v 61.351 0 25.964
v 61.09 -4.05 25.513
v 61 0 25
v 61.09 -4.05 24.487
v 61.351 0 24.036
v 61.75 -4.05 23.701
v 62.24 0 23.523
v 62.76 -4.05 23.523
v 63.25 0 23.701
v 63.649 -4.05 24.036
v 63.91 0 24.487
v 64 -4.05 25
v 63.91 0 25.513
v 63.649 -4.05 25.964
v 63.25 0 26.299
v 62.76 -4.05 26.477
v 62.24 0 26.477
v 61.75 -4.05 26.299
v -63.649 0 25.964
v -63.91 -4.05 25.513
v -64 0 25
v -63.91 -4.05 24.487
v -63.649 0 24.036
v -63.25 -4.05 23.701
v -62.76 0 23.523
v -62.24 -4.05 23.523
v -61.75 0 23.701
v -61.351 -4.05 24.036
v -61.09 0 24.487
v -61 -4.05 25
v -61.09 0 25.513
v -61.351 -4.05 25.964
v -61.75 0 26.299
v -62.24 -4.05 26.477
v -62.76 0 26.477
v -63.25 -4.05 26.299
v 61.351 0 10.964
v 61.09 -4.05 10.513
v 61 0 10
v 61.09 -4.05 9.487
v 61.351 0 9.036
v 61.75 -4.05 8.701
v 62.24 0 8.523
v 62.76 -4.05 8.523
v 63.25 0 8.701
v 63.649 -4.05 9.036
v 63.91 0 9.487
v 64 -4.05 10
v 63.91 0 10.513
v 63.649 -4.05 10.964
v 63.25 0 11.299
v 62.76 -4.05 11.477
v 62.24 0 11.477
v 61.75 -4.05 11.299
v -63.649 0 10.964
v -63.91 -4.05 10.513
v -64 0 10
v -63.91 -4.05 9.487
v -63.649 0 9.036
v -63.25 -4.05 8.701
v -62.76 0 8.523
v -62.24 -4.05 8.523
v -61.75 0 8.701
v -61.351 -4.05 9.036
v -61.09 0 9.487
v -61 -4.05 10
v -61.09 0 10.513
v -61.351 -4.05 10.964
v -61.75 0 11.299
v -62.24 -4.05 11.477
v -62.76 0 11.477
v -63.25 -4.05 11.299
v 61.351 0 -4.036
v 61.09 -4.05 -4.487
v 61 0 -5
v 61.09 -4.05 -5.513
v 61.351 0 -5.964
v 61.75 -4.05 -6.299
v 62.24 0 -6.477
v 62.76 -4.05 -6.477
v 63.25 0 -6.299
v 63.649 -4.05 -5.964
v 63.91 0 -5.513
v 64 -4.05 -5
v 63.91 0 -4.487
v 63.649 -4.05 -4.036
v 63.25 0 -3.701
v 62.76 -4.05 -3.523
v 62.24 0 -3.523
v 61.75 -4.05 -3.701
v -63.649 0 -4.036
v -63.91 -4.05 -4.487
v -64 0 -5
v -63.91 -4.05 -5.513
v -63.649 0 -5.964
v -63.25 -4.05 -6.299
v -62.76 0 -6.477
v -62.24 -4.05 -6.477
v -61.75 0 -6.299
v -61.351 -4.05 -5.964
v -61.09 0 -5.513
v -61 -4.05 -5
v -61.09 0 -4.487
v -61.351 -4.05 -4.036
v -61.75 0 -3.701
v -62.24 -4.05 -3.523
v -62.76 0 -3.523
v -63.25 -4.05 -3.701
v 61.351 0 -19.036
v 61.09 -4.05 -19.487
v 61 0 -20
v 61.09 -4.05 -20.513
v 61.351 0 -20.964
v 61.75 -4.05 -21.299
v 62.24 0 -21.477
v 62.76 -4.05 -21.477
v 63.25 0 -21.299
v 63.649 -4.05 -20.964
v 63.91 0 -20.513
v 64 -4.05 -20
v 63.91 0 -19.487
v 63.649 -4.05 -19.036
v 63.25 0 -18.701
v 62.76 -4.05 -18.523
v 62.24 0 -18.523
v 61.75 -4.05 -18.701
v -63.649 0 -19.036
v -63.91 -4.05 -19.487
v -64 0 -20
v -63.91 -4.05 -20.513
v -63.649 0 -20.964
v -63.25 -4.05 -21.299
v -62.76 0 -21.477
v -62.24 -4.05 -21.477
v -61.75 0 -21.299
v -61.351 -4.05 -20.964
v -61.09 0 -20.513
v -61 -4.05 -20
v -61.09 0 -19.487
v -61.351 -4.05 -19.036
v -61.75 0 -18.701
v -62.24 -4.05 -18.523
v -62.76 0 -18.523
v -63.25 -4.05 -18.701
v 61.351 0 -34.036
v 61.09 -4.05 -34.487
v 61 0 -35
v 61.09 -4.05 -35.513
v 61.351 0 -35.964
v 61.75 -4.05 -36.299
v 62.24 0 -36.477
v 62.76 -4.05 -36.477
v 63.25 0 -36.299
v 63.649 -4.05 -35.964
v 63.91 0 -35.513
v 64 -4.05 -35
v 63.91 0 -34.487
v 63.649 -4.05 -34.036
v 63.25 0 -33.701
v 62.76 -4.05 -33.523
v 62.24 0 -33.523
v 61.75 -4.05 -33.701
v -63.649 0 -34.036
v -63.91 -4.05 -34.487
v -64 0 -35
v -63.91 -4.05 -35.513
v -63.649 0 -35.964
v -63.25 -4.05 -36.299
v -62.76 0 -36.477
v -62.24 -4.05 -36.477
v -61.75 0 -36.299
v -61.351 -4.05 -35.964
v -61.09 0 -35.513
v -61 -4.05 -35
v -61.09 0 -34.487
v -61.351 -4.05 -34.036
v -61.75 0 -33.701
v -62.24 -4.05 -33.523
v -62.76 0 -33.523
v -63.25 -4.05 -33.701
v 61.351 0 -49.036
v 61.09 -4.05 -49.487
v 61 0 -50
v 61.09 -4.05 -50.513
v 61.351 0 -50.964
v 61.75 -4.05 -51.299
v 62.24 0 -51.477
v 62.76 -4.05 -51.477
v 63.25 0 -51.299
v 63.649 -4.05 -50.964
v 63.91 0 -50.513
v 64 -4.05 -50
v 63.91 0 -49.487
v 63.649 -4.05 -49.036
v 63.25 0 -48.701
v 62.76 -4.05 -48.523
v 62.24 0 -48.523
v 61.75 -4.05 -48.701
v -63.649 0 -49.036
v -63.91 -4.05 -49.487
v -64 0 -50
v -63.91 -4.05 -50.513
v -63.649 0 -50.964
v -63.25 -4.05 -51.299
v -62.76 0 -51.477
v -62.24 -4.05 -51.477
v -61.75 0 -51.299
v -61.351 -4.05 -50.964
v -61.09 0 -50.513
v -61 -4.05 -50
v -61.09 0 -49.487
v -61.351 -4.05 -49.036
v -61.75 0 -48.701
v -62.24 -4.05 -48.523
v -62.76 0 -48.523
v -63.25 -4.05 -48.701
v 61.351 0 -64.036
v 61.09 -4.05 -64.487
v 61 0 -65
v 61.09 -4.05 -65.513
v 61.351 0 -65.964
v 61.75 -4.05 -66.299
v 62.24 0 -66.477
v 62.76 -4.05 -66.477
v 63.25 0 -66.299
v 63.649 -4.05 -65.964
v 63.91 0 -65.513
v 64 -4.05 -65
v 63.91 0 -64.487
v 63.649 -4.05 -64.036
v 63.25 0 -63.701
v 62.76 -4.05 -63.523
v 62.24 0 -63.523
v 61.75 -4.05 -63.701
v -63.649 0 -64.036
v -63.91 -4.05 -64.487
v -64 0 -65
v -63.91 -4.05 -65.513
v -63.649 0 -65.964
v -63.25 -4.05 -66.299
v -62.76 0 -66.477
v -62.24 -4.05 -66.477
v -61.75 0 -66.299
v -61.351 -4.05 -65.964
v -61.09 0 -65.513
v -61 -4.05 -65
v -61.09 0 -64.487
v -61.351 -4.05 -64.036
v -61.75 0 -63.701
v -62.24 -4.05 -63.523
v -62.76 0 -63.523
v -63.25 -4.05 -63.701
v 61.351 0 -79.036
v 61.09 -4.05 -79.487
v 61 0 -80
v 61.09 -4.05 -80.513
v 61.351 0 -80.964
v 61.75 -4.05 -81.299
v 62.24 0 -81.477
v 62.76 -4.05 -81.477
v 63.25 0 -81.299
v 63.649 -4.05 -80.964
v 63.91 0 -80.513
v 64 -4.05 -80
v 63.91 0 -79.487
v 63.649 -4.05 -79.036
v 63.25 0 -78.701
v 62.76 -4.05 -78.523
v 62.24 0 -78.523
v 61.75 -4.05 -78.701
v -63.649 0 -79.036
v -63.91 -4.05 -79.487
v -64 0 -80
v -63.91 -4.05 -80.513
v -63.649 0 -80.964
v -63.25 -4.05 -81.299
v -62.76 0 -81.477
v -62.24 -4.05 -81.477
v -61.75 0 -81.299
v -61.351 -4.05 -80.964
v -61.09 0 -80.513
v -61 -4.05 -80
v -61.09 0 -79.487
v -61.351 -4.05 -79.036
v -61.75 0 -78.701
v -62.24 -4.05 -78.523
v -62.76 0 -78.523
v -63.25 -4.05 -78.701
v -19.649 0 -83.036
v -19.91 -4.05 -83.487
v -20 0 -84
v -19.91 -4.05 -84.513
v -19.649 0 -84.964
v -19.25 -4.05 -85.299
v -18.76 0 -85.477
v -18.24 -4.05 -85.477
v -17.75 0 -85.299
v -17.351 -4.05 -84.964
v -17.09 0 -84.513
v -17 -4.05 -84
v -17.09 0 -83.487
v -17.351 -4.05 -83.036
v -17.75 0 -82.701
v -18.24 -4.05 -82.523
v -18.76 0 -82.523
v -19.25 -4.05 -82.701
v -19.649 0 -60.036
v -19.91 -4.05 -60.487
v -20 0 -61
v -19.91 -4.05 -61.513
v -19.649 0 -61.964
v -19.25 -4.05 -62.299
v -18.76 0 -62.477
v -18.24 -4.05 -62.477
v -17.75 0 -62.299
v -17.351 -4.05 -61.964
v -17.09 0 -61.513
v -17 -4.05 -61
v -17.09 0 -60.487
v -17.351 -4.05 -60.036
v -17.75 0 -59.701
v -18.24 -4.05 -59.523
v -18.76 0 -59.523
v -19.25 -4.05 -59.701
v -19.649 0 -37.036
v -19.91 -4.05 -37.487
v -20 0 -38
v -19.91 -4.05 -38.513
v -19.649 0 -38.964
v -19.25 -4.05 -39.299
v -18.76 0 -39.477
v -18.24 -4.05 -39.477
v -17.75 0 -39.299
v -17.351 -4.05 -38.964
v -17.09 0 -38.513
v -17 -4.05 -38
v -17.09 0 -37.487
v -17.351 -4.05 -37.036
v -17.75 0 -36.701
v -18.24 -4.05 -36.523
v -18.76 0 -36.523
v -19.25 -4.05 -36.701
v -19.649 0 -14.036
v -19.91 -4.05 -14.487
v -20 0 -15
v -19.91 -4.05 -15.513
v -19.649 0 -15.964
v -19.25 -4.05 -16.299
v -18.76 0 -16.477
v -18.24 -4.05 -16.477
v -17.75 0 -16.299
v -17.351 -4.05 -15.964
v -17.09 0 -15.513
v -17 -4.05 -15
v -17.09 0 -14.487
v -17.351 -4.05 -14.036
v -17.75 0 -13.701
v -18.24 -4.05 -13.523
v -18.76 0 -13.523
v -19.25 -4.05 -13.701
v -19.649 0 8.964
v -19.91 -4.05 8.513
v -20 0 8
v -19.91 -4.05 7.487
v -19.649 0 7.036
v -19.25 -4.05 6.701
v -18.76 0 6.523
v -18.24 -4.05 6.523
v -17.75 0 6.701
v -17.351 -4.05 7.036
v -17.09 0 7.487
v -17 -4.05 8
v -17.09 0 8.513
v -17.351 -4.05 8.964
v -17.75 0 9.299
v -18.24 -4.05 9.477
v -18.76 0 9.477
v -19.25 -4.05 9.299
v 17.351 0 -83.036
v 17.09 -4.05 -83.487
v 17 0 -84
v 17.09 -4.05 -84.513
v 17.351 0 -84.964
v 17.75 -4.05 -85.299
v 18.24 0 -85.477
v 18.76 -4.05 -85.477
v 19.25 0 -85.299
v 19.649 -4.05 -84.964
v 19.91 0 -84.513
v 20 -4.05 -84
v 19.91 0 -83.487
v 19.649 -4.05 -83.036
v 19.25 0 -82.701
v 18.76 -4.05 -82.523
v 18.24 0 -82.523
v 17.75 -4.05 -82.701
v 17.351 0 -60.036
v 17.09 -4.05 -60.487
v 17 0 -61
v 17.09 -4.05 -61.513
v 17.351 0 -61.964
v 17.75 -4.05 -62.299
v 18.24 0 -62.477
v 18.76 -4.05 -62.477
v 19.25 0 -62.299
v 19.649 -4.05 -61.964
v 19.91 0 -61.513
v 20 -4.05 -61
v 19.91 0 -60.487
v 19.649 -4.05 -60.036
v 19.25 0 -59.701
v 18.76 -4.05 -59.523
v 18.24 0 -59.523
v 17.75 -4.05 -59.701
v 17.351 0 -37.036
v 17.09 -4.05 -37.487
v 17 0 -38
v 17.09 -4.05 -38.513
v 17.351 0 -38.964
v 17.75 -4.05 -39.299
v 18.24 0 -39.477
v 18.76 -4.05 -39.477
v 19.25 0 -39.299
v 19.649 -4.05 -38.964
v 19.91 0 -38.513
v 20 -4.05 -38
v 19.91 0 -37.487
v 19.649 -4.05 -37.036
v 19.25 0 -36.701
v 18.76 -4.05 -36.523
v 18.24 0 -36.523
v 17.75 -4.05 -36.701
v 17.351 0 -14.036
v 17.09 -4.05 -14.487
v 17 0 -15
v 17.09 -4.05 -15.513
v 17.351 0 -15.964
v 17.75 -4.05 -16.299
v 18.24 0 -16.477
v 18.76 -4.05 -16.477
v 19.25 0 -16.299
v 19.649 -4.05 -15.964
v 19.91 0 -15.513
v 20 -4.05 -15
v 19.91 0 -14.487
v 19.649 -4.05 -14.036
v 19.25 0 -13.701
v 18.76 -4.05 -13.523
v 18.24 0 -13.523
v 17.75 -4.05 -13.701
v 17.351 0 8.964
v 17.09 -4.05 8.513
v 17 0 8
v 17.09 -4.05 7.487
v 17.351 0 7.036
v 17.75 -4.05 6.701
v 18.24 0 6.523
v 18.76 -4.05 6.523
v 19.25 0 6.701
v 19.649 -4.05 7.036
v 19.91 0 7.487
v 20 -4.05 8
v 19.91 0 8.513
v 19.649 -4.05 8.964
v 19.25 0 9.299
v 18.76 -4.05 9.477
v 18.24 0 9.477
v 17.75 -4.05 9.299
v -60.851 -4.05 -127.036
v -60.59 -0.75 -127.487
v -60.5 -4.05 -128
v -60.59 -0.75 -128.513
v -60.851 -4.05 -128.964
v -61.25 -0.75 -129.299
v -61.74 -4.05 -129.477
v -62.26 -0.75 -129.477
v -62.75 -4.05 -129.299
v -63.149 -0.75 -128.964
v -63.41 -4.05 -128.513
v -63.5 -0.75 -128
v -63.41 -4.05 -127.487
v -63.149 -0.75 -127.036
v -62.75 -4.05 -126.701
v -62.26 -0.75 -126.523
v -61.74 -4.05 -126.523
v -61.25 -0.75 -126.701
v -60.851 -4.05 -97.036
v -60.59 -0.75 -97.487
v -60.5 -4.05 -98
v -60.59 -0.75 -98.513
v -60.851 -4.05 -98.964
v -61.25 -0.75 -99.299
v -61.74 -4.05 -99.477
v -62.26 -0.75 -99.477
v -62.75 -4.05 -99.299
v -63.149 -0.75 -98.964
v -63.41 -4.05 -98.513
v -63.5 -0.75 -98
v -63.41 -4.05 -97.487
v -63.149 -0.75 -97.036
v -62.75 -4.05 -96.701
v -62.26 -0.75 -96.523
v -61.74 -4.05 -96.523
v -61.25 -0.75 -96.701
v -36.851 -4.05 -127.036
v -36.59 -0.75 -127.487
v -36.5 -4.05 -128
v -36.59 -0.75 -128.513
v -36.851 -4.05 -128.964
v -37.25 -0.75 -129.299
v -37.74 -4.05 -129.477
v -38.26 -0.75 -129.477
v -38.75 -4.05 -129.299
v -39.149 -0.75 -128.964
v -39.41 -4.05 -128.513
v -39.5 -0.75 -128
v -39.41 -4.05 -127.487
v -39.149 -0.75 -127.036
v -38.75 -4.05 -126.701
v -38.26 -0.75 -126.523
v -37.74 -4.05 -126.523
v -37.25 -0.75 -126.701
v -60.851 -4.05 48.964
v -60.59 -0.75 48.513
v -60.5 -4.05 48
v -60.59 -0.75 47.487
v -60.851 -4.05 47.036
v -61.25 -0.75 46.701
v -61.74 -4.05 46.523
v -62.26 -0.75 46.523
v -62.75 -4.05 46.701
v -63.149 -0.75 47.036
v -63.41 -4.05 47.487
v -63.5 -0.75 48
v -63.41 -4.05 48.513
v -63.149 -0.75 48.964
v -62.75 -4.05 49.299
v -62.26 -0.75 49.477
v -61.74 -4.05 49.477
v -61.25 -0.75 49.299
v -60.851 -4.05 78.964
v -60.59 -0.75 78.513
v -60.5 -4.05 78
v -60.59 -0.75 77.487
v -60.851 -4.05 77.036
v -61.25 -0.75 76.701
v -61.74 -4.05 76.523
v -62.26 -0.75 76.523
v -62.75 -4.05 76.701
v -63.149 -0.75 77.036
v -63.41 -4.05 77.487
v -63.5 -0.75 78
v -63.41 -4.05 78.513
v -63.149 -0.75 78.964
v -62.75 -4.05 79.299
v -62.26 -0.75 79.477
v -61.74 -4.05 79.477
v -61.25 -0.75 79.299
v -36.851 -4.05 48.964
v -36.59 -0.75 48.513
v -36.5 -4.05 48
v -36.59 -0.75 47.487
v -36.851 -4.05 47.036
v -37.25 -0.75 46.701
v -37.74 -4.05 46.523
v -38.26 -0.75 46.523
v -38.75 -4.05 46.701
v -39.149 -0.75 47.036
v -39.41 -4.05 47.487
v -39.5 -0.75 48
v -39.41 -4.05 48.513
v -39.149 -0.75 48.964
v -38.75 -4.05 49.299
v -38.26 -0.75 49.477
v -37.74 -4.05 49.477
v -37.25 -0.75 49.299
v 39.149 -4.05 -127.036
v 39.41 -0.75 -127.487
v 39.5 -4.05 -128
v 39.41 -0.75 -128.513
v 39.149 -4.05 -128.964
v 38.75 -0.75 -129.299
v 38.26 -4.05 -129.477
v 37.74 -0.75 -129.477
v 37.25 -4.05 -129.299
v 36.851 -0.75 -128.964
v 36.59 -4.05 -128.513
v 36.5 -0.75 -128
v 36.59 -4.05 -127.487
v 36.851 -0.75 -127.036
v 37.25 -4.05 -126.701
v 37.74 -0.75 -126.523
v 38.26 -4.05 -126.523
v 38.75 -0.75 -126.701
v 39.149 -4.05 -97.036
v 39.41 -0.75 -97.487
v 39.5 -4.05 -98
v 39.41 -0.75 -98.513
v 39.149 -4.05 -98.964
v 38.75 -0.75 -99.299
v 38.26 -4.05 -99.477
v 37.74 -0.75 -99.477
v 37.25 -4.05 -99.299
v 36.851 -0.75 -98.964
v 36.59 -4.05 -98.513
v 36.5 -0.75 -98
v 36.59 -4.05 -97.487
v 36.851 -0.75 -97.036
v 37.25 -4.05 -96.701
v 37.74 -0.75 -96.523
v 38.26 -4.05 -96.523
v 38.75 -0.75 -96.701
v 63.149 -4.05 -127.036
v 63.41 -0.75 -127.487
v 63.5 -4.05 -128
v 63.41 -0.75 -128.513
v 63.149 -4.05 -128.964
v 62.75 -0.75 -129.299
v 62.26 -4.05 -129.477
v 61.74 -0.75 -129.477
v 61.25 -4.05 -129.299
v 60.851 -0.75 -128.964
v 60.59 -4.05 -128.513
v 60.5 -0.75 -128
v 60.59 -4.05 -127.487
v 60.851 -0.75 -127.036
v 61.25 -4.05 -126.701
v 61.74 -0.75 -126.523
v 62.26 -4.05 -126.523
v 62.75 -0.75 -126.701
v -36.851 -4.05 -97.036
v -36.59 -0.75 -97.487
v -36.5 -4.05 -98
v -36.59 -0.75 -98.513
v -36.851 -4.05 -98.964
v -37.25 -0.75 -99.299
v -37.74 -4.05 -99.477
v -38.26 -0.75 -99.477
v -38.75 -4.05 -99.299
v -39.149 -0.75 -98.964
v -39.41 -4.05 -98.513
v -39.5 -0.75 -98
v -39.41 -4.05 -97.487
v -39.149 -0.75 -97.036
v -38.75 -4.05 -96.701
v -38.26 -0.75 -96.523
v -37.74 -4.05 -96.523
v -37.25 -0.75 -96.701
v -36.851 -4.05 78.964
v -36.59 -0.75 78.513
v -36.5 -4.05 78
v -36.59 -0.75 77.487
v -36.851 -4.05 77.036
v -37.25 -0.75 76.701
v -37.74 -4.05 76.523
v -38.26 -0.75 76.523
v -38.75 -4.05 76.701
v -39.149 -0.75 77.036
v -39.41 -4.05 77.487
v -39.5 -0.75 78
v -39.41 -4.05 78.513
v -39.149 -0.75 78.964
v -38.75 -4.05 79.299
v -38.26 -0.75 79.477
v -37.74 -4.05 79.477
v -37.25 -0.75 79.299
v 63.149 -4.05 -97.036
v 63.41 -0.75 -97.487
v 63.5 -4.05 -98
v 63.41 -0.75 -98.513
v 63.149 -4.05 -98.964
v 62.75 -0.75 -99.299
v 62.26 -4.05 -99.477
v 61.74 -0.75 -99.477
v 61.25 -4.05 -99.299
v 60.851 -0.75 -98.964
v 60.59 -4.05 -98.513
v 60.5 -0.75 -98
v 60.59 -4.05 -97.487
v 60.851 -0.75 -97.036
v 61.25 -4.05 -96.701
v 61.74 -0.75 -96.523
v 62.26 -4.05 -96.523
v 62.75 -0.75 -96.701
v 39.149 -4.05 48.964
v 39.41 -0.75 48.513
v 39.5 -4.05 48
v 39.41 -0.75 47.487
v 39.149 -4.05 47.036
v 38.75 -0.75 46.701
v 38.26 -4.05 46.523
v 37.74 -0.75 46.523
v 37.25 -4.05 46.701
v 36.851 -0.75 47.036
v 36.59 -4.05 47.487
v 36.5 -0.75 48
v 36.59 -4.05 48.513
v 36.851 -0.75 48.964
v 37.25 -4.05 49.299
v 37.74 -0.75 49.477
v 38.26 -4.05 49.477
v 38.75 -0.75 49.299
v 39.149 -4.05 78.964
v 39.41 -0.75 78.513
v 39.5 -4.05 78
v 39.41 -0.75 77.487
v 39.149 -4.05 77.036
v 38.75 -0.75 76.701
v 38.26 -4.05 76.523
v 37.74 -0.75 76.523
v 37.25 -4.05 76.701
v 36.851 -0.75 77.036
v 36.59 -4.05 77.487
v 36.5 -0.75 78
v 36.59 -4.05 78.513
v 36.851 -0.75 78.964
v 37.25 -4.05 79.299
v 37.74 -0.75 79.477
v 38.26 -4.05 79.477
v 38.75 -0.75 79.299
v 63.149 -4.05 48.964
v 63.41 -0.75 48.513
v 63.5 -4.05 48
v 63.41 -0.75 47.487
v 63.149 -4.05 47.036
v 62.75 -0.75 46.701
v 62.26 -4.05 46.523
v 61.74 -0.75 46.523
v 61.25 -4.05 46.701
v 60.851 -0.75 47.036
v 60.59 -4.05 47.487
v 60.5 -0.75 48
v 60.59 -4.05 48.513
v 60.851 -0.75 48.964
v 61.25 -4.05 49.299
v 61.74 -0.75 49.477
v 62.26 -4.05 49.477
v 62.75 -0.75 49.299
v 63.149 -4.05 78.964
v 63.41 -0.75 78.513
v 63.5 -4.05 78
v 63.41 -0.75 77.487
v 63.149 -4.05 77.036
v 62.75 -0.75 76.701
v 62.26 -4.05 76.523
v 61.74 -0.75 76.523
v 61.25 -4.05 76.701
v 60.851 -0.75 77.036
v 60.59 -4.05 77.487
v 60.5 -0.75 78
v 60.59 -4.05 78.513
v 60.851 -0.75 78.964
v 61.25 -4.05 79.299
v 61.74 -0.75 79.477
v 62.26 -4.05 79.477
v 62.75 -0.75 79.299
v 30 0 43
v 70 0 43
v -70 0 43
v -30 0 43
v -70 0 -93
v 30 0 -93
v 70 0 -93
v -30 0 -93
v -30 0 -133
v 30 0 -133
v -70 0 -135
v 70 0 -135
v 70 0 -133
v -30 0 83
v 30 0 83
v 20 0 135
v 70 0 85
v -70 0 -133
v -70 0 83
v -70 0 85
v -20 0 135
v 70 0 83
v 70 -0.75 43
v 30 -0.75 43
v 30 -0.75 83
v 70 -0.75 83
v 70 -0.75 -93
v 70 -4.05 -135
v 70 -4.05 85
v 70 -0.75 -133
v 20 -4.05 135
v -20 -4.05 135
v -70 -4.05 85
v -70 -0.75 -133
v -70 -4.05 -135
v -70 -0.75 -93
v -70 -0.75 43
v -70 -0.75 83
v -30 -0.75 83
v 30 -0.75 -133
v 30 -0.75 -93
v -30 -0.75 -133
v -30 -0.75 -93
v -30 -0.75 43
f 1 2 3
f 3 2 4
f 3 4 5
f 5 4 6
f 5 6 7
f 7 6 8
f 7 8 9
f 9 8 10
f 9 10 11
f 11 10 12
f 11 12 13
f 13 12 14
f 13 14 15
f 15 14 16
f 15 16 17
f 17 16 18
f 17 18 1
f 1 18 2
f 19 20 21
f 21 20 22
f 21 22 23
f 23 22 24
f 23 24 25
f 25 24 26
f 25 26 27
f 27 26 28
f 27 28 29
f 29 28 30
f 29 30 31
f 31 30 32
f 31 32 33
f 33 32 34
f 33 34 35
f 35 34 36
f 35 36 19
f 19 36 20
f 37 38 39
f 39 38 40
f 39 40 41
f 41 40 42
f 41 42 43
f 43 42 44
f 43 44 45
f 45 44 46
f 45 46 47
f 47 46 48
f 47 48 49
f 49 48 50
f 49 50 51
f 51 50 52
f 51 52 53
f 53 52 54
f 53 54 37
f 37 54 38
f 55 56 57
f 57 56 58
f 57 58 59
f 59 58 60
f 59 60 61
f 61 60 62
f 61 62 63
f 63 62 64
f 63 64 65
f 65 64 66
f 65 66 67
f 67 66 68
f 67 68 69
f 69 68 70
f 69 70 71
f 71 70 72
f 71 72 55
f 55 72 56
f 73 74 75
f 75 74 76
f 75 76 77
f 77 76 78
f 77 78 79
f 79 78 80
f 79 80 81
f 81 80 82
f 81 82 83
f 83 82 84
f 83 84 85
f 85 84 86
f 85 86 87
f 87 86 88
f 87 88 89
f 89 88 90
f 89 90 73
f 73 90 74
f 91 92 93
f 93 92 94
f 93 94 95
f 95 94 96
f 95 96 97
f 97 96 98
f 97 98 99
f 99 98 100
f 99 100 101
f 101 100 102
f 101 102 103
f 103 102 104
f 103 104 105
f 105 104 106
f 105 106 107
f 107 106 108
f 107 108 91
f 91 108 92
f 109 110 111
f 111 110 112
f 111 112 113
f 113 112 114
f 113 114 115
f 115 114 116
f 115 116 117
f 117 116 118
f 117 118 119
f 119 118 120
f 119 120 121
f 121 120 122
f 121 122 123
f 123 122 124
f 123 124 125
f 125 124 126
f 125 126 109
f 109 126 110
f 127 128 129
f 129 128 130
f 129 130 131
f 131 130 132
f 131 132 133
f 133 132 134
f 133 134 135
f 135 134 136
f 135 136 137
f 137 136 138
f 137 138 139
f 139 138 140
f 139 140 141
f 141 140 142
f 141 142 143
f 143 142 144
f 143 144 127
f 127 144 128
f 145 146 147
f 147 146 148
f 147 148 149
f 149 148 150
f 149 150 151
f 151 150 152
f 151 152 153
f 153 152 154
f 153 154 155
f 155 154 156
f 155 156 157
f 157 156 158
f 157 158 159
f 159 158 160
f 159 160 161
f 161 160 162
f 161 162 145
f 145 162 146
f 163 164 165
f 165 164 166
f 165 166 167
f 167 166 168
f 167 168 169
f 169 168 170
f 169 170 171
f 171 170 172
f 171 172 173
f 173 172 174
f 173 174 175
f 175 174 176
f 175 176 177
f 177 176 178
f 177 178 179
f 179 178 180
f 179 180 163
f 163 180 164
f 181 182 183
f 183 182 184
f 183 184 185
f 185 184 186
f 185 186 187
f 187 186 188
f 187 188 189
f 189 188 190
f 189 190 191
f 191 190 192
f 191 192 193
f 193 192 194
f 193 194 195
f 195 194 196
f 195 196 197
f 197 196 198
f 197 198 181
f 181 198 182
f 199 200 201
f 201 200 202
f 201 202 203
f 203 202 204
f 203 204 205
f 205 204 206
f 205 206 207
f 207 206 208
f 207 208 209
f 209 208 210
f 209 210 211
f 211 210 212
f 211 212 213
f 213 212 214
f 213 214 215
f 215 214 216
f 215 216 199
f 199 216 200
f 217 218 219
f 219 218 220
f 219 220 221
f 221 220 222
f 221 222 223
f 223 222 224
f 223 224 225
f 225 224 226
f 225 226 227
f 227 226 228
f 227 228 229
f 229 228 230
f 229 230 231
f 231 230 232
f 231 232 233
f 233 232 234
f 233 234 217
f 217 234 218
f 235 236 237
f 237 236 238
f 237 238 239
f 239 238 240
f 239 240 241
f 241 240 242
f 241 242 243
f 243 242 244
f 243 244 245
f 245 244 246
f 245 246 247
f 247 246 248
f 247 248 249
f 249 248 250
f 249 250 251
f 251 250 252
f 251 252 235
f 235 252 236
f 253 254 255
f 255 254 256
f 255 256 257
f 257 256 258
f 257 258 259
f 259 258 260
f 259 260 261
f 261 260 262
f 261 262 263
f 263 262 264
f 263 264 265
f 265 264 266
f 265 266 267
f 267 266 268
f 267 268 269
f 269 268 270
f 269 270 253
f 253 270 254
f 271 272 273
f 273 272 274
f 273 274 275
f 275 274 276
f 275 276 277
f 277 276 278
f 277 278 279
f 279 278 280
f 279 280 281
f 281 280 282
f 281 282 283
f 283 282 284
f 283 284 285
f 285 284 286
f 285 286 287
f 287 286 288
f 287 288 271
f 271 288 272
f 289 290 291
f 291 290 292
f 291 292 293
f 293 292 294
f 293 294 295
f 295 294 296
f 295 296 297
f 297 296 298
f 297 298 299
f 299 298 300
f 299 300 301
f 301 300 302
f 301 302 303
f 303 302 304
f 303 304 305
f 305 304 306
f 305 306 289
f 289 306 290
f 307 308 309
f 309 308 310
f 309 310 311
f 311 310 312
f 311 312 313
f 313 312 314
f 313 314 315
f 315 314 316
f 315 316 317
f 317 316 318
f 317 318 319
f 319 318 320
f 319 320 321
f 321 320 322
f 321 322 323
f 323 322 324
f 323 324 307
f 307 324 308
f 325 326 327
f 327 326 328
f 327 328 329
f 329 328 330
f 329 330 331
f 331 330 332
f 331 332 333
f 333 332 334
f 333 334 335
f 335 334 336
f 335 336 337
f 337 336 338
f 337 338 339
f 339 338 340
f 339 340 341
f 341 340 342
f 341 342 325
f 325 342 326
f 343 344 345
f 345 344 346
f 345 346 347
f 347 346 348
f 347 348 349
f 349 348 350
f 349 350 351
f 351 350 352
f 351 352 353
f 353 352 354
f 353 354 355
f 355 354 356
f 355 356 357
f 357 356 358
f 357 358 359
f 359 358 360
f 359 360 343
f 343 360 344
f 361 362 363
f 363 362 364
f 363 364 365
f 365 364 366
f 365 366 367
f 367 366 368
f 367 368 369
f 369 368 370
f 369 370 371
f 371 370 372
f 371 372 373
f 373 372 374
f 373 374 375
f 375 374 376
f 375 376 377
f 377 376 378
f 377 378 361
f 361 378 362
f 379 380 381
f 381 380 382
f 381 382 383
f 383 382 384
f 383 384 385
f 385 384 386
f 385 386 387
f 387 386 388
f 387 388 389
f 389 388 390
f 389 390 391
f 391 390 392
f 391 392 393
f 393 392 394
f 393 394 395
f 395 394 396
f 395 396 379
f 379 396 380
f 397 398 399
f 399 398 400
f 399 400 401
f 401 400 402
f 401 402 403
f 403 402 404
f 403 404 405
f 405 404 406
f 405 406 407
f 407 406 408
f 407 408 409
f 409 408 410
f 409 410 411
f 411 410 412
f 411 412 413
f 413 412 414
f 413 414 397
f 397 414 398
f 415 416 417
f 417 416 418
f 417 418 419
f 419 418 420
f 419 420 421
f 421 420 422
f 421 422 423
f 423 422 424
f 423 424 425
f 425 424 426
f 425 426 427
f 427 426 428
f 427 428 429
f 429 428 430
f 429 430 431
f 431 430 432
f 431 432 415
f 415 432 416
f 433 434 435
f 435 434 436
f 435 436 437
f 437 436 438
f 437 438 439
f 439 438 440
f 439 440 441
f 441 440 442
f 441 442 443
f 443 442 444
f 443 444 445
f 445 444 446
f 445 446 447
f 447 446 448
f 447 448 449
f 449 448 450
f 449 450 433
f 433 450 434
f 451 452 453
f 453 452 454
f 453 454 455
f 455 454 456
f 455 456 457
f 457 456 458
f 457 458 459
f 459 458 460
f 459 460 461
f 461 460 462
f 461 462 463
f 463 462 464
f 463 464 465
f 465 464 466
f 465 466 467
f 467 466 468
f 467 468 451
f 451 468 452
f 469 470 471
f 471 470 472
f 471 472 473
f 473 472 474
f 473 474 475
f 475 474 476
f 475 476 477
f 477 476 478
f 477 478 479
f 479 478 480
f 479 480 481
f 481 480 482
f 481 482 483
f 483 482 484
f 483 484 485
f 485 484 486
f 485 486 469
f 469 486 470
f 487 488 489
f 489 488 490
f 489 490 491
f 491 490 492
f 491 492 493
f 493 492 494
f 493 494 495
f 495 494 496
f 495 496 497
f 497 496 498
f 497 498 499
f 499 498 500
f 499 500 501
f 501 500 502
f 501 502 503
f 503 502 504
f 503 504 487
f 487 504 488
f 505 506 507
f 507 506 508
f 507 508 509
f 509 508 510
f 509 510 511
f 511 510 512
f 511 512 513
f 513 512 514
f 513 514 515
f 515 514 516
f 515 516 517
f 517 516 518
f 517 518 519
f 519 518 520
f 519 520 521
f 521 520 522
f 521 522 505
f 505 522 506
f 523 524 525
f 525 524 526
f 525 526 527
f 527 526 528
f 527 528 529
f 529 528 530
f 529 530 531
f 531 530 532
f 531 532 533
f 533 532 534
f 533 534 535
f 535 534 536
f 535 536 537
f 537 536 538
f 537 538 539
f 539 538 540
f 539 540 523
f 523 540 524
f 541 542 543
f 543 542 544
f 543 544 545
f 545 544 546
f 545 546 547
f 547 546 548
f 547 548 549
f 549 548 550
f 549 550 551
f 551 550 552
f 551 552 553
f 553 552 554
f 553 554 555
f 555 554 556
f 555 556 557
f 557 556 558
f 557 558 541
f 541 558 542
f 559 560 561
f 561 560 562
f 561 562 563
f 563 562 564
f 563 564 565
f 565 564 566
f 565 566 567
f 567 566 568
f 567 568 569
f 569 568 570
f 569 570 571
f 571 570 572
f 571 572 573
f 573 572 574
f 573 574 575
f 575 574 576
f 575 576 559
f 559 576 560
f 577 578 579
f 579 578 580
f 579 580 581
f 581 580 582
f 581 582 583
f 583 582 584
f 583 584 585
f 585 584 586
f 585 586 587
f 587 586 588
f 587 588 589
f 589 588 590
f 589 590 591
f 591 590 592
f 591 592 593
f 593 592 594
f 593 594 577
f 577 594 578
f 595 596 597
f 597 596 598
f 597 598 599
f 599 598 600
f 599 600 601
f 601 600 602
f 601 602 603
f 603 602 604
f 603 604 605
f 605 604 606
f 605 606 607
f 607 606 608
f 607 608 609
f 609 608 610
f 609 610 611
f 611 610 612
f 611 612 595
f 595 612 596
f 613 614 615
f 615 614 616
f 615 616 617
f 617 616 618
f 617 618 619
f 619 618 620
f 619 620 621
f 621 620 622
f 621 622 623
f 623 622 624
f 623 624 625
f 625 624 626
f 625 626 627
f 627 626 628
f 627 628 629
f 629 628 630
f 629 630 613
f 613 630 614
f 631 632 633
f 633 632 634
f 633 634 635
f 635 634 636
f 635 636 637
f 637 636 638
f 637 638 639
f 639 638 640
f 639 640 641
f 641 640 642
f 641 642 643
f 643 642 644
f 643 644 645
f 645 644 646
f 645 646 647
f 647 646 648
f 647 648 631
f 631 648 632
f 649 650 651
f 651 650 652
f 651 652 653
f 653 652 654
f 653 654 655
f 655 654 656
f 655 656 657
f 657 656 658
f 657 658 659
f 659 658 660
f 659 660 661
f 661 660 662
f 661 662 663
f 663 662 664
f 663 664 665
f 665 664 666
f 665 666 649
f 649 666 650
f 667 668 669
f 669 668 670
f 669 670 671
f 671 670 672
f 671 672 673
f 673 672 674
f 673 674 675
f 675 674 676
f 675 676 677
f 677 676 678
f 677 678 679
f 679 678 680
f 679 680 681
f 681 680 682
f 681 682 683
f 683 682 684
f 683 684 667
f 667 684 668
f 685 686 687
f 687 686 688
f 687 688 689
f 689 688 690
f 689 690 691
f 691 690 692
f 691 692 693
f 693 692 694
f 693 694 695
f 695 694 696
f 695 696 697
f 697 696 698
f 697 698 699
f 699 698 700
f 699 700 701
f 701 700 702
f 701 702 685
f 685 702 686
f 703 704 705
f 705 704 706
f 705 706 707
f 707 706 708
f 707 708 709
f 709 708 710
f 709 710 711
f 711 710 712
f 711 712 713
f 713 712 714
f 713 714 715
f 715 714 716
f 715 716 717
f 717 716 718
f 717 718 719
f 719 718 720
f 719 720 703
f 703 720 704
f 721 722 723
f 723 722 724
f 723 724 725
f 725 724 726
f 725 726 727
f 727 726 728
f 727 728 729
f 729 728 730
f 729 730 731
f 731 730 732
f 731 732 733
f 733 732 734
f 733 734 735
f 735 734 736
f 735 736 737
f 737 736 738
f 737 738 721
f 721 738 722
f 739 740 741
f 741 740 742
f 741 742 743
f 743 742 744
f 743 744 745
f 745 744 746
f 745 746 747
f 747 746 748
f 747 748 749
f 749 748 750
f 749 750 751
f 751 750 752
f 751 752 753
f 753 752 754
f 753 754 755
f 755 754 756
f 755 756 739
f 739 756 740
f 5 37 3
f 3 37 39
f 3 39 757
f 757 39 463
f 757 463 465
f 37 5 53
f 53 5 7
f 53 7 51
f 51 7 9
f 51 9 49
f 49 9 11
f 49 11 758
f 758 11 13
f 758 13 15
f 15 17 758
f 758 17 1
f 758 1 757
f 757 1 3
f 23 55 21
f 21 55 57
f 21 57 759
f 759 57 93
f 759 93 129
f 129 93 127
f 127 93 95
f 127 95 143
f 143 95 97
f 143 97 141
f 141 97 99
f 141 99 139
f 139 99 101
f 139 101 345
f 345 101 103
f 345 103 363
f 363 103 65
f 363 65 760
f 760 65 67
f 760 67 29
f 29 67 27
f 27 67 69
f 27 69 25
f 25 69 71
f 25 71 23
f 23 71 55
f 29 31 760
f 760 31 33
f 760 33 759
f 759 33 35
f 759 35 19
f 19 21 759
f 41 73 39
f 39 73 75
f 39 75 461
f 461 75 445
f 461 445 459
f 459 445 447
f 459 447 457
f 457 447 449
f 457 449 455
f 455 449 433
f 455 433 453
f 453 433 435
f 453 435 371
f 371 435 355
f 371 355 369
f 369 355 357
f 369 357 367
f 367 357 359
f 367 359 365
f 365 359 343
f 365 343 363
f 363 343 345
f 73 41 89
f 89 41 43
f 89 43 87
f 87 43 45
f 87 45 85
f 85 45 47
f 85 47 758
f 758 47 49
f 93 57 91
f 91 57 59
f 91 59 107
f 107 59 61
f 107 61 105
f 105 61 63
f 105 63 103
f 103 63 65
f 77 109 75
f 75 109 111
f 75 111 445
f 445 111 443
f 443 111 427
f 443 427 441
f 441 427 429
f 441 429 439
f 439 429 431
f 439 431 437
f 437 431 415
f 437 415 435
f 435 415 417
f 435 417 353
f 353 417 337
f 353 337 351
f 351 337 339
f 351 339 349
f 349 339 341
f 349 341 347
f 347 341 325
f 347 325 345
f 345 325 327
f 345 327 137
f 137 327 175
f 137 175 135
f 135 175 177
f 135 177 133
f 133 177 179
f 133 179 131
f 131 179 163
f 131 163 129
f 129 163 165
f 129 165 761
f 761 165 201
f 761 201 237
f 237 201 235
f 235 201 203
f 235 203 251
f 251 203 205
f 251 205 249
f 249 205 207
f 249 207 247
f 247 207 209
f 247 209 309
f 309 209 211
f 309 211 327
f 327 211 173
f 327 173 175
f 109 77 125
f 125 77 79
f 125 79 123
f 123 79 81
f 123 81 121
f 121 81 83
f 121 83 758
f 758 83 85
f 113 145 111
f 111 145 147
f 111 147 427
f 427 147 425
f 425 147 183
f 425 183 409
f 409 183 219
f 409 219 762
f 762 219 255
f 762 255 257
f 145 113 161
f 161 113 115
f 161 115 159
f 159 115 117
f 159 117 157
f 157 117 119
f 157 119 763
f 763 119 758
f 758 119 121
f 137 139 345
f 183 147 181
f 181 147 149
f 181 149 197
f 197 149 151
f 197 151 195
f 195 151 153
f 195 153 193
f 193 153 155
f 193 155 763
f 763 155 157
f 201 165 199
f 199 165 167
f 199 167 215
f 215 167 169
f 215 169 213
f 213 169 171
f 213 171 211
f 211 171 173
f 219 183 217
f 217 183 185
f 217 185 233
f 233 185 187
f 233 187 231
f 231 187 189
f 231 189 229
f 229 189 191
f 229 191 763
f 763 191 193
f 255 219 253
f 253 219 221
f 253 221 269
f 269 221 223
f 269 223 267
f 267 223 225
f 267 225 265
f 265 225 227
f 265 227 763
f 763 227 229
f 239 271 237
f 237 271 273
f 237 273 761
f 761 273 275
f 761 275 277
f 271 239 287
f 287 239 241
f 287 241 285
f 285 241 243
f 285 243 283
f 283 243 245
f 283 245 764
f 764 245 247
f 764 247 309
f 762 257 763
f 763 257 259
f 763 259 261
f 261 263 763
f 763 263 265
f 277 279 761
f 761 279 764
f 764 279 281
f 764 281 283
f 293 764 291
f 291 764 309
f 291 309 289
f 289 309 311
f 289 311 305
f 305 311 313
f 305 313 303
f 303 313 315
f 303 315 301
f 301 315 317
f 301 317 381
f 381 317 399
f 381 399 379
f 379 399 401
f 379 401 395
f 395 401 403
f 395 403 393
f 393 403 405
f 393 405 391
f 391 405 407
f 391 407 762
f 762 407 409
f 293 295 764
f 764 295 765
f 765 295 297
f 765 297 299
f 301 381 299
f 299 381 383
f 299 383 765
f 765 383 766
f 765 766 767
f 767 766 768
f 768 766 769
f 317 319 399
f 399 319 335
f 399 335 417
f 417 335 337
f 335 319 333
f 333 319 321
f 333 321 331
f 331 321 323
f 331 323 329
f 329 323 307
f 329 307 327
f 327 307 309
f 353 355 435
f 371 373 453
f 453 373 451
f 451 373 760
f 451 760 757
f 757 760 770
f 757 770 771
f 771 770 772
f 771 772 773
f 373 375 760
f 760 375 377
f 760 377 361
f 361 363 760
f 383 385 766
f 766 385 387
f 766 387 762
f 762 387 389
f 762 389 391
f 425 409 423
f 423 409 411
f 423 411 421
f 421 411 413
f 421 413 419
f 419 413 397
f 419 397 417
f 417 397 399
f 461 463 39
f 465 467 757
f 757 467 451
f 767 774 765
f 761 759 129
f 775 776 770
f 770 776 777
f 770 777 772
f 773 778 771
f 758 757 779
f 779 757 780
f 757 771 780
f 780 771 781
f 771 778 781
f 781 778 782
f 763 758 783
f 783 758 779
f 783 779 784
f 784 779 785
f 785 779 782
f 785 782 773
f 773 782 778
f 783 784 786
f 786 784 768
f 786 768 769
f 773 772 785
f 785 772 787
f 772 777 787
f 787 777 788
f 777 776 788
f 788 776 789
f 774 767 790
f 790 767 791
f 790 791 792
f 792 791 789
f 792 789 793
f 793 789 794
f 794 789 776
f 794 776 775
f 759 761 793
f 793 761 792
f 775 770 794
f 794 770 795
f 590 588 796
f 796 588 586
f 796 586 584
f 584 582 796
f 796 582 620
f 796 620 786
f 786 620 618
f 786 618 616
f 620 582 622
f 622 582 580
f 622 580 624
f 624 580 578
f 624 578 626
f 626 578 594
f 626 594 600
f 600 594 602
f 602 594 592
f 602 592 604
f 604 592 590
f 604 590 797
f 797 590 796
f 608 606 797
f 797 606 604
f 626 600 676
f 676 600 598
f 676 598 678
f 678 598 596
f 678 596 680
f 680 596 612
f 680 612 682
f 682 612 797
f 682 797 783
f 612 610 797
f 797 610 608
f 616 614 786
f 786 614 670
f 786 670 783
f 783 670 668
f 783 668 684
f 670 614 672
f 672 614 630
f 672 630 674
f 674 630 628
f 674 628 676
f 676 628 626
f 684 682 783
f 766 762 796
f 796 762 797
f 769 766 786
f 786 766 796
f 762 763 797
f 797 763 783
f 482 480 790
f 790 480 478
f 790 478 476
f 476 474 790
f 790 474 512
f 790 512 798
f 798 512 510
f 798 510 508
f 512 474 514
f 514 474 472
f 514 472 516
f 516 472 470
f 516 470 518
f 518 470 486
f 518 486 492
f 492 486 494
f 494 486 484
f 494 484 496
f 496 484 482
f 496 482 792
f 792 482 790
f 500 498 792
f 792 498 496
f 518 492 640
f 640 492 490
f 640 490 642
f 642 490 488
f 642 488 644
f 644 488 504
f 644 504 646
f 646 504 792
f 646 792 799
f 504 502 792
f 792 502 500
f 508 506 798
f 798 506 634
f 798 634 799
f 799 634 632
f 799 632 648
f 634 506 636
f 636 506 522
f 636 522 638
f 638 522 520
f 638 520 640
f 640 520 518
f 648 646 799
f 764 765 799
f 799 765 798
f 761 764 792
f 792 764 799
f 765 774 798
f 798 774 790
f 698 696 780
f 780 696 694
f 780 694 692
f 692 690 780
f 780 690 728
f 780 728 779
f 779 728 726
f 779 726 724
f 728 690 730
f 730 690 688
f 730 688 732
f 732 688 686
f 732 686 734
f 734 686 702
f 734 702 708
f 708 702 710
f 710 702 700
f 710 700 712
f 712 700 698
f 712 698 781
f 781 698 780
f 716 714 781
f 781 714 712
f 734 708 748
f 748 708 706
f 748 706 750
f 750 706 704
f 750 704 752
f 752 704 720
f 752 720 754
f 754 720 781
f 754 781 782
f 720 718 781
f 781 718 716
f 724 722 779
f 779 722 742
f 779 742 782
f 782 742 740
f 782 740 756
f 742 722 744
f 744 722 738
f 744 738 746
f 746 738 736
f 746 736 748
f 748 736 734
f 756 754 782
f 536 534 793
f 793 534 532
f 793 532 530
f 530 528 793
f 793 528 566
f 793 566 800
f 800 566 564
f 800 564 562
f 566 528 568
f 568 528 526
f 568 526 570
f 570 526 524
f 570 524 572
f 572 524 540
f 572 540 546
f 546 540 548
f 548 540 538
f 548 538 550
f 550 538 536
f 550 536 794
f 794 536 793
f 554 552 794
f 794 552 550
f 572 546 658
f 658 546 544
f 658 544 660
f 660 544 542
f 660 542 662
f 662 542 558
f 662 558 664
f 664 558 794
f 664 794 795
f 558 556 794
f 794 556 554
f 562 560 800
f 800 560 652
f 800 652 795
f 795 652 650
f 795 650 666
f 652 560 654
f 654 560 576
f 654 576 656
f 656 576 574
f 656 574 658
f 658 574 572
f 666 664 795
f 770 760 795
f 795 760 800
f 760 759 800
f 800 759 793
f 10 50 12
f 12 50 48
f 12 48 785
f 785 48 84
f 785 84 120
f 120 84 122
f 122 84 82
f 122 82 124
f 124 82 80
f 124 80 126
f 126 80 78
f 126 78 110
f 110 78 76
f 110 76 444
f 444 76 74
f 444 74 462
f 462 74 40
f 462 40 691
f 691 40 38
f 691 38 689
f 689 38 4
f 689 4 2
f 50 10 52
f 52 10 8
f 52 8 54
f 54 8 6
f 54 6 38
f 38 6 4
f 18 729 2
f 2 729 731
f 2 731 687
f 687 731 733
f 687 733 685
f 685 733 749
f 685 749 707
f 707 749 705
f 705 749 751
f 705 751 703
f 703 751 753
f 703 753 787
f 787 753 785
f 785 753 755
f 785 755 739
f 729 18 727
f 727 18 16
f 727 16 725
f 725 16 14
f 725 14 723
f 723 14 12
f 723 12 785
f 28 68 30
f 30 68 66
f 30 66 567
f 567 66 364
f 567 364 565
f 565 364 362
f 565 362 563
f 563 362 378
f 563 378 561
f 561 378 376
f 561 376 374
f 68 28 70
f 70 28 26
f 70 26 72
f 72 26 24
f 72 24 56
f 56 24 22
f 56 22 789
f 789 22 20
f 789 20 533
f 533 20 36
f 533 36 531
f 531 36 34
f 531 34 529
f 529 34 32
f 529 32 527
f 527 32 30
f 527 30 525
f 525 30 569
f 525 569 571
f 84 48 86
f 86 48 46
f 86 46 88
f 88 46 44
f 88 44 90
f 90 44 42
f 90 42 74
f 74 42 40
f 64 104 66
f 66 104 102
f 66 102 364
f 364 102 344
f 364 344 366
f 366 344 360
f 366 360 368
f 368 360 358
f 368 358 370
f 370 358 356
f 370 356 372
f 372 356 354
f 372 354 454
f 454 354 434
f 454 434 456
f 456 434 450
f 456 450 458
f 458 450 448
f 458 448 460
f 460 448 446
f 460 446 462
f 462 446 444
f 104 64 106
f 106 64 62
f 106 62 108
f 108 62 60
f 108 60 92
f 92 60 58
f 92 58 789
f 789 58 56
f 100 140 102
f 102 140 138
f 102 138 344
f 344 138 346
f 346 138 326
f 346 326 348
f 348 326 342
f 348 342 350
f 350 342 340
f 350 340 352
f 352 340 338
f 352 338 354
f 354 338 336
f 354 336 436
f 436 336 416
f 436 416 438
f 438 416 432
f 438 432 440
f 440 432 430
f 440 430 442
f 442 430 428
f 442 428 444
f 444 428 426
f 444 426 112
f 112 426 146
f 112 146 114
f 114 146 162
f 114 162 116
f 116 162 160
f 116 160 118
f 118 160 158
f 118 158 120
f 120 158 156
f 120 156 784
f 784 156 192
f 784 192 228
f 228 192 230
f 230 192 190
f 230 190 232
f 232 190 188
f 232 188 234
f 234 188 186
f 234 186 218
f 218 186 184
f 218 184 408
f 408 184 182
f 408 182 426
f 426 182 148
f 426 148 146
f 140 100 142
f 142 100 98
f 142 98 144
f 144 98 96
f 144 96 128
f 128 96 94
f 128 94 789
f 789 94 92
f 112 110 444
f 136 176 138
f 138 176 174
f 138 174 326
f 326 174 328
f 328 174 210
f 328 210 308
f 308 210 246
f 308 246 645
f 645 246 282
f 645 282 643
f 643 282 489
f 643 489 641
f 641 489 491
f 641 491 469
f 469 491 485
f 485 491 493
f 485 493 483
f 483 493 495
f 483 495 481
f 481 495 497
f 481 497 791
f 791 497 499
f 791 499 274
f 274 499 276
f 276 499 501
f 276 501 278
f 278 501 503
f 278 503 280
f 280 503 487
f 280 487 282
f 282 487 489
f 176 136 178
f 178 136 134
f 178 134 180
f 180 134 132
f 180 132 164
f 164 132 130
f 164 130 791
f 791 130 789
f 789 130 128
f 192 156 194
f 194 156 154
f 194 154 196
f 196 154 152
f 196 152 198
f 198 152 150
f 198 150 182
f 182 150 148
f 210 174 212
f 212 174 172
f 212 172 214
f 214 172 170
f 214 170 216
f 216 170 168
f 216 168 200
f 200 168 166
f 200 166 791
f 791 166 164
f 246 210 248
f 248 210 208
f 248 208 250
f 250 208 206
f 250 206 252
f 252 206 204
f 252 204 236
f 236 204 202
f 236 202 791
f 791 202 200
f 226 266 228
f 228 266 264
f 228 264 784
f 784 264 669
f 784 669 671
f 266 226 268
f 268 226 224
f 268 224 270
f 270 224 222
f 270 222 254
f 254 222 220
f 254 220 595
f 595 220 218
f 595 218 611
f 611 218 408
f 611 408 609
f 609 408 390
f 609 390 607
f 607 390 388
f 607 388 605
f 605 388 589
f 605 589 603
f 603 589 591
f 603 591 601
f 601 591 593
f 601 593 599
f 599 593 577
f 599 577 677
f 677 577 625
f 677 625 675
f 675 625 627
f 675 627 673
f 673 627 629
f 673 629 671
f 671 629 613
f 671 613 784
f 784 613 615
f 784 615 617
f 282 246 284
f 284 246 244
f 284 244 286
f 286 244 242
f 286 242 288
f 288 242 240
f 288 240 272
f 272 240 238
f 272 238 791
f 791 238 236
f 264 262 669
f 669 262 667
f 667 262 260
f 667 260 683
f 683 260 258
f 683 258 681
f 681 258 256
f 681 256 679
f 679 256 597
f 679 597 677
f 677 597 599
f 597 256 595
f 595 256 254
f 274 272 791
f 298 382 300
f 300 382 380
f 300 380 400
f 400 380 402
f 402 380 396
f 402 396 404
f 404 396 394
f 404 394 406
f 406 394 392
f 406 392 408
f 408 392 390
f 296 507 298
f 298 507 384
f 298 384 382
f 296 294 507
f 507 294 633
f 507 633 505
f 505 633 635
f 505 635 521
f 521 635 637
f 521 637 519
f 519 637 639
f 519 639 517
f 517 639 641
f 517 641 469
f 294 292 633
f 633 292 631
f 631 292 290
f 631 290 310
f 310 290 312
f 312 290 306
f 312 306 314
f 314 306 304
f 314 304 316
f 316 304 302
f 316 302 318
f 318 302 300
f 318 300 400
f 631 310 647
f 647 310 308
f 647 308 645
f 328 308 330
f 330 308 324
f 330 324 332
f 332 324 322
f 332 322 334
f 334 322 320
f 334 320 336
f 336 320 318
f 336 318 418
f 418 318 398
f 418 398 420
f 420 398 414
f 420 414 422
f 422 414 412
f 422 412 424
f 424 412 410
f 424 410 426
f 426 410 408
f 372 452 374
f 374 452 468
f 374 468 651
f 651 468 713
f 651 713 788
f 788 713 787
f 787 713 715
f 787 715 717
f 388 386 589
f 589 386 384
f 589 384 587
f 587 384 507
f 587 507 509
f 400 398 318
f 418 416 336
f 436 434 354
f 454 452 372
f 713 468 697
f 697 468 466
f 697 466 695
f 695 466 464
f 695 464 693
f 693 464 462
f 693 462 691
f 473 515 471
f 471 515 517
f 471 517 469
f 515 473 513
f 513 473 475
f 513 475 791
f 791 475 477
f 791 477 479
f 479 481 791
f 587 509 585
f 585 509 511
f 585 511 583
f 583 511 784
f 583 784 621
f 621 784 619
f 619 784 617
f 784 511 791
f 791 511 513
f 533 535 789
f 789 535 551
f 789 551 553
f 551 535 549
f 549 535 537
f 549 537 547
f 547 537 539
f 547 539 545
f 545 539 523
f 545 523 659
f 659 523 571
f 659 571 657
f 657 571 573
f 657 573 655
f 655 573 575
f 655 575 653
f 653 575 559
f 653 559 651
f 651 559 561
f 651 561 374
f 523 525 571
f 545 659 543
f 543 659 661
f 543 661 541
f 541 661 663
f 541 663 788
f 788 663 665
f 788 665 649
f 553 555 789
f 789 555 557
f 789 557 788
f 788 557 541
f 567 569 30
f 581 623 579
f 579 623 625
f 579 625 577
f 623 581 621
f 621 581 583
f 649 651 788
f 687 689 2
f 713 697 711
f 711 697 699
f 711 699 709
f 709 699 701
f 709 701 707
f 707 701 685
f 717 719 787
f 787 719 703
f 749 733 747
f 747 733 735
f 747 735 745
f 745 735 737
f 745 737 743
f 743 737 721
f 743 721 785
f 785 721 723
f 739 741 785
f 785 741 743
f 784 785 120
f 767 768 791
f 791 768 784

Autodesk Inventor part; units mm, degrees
ref_plane "YZ Plane" through (0, 0, 0) normal (1, 0, 0) x (0, 1, 0)
ref_plane "XZ Plane" through (0, 0, 0) normal (0, 1, 0) x (-1, 0, 0)
ref_plane "XY Plane" through (0, 0, 0) normal (0, 0, 1) x (1, 0, 0)
sketch "Sketch1" plane through (0, 0, 0) normal (0, 1, 0) x (-1, 0, 0)
  line L0 (-70, 135) -> (-70, -135)
  line L1 (-70, -135) -> (70, -135)
  line L2 (70, -135) -> (70, 135)
  line L3 (70, 135) -> (-70, 135)
  line L4 (-70, 135) -> (70, -135) construction
  line L5 (-70, -135) -> (70, 135) construction
  line L6 (70, 85) -> (20, 135)
  line L7 (-20, 135) -> (-70, 85)
  point P0 (0, 0)
  dimension "d0" = 140
  dimension "d1" = 270
  dimension "d2" = 40
  dimension "d3" = 50
  dimension "d4" = 220
extrude "Extrusion1" add sketch "Sketch1" along normal blind 4.05 and the other way blind 4.05 contours L7 L3 L6 L2 L1 L0
sketch "Sketch2" plane through (0, 0, 0) normal (0, 1, 0) x (-1, 0, 0)
  line L0 (70, -135) -> (70, 85) projected
  line L1 (70, 85) -> (20, 135) projected
  line L2 (20, 135) -> (-20, 135) projected
  line L3 (-20, 135) -> (-70, 85) projected
  line L4 (-70, 85) -> (-70, -135) projected
  line L5 (-70, -135) -> (70, -135) projected
  line L6 (70, 83) -> (30, 83)
  line L7 (30, 83) -> (30, 43)
  line L8 (30, 43) -> (70, 43)
  line L9 (70, 43) -> (70, 83)
  line L10 (70, 85) -> (70, -135) projected
  line L11 (70, -133) -> (30, -133)
  line L12 (30, -133) -> (30, -93)
  line L13 (30, -93) -> (70, -93)
  line L14 (70, -93) -> (70, -133)
  line L15 (-30, 43) -> (-30, 83)
  line L16 (-70, 43) -> (-30, 43)
  line L17 (-30, 83) -> (-70, 83)
  line L18 (-70, 83) -> (-70, 43)
  line L19 (-30, -93) -> (-30, -133)
  line L20 (-70, -93) -> (-30, -93)
  line L21 (-30, -133) -> (-70, -133)
  line L22 (-70, -133) -> (-70, -93)
  point P0 (0, 0)
  point P1 (50, 83)
  point P2 (50, -133)
  point P3 (-50, 83)
  point P4 (-50, -133)
  dimension "d11" = 40
  dimension "d12" = 40
  dimension "d13" = 2
  dimension "d14" = 2
  dimension "d15" = 40
  dimension "d16" = 40
  dimension "d19" = 100
extrude "Extrusion2" cut sketch "Sketch2" along normal blind 0.75 and the other way blind 0.75 contours L11 L12 L13 L0 | L4 L20 L19 L21 | L8 L7 L6 L0 | L4 L17 L15 L16
sketch "Sketch3" plane through (0, 0, 0) normal (0, 1, 0) x (-1, 0, 0)
  line L0 (70, -135) -> (70, 85) projected
  line L1 (70, 85) -> (20, 135) projected
  line L2 (20, 135) -> (-20, 135) projected
  line L3 (-20, 135) -> (-70, 85) projected
  line L4 (-70, 85) -> (-70, -135) projected
  line L5 (-70, -135) -> (70, -135) projected
  point P0 (0, 0)
extrude "Extrusion3" cut sketch "Sketch3" along normal up to surface (4.05 mm away)
sketch "Sketch5" plane through (0, -4.05, 0) normal (0, -1, 0) x (1, 0, 0)
  line L0 (62, 78) -> (38, 78)
  line L1 (38, 78) -> (38, 48)
  line L2 (38, 48) -> (62, 48)
  line L3 (62, 48) -> (62, 78)
  line L4 (30, -93) -> (70, -93) projected
  line L5 (30, -133) -> (30, -93) projected
  line L6 (70, -133) -> (30, -133) projected
  line L7 (70, -135) -> (70, -133) projected
  line L8 (-70, -135) -> (70, -135) projected
  line L9 (-70, -133) -> (-70, -135) projected
  line L10 (-30, -133) -> (-70, -133) projected
  line L11 (-30, -93) -> (-30, -133) projected
  line L12 (-70, -93) -> (-30, -93) projected
  line L13 (-70, 43) -> (-70, -93) projected
  line L14 (-30, 43) -> (-70, 43) projected
  line L15 (-30, 83) -> (-30, 43) projected
  line L16 (-70, 83) -> (-30, 83) projected
  line L17 (-70, 85) -> (-70, 83) projected
  line L18 (-20, 135) -> (-70, 85) projected
  line L19 (20, 135) -> (-20, 135) projected
  line L20 (70, 85) -> (20, 135) projected
  line L21 (70, 83) -> (70, 85) projected
  line L22 (30, 83) -> (70, 83) projected
  line L23 (30, 43) -> (30, 83) projected
  line L24 (70, 43) -> (30, 43) projected
  line L25 (70, -93) -> (70, 43) projected
  circle A0 centre (62, 78) radius 1.5
  point P0 (0, 0)
  dimension "d31" = 24
  dimension "d32" = 30
  dimension "d33" = 8
  dimension "d34" = 5
  dimension "d35" = 3
extrude "Extrusion4" cut sketch "Sketch5" against normal up to surface (3.3 mm away) contours L3 A0 L0 | L0 A0 L3
pattern_linear "Rectangular Pattern1" count 2 spacing 30 along (0, 0, -1) count 2 spacing 24 along (-1, 0, 0) of "Extrusion4"
pattern_linear "Rectangular Pattern2" count 2 spacing 176 along (0, 0, -1) count 2 spacing 100 along (-1, 0, 0) of "Extrusion4", "Rectangular Pattern1"
sketch "Sketch6" plane through (0, -4.05, 0) normal (0, -1, 0) x (1, 0, 0)
  line L0 (18.5, -84) -> (-18.5, -84)
  line L1 (-18.5, -84) -> (-18.5, 8)
  line L2 (-18.5, 8) -> (18.5, 8)
  line L3 (18.5, 8) -> (18.5, -84)
  line L4 (70, -93) -> (70, 43) projected
  line L5 (70, 13) -> (-70, 13)
  line L6 (-70, 85) -> (-70, -135) projected
  line L7 (-70, -135) -> (70, -135) projected
  circle A0 centre (18.5, 8) radius 1.5
  point P0 (0, 0)
  point P1 (0, 8)
  dimension "d50" = 148
  dimension "d51" = 5
  dimension "d52" = 92
  dimension "d53" = 37
  dimension "d54" = 3
extrude "Extrusion5" cut sketch "Sketch6" against normal up to next contours A0 L2 L3 | L3 L2 A0
pattern_linear "Rectangular Pattern3" count 5 spacing 23 along (0, 0, -1) count 2 spacing 37 along (-1, 0, 0) of "Extrusion5"
sketch "Sketch7" plane through (0, -4.05, 0) normal (0, -1, 0) x (1, 0, 0)
  line L0 (70, -135) -> (70, 85) projected
  line L1 (-70, 85) -> (-70, -135) projected
  line L2 (-70, -135) -> (70, -135) projected
  circle A0 centre (62.5, -80) radius 1.5
  circle A1 centre (-62.5, -80) radius 1.5
  point P0 (0, 0)
  dimension "d63" = 7.5
  dimension "d64" = 7.5
  dimension "d65" = 55
  dimension "d66" = 55
  dimension "d67" = 3
  dimension "d68" = 3
extrude "Extrusion6" cut sketch "Sketch7" against normal up to next
pattern_linear "Rectangular Pattern4" count 8 spacing 15 along (0, 0, 1) of "Extrusion6"
properties part number "low_base"
